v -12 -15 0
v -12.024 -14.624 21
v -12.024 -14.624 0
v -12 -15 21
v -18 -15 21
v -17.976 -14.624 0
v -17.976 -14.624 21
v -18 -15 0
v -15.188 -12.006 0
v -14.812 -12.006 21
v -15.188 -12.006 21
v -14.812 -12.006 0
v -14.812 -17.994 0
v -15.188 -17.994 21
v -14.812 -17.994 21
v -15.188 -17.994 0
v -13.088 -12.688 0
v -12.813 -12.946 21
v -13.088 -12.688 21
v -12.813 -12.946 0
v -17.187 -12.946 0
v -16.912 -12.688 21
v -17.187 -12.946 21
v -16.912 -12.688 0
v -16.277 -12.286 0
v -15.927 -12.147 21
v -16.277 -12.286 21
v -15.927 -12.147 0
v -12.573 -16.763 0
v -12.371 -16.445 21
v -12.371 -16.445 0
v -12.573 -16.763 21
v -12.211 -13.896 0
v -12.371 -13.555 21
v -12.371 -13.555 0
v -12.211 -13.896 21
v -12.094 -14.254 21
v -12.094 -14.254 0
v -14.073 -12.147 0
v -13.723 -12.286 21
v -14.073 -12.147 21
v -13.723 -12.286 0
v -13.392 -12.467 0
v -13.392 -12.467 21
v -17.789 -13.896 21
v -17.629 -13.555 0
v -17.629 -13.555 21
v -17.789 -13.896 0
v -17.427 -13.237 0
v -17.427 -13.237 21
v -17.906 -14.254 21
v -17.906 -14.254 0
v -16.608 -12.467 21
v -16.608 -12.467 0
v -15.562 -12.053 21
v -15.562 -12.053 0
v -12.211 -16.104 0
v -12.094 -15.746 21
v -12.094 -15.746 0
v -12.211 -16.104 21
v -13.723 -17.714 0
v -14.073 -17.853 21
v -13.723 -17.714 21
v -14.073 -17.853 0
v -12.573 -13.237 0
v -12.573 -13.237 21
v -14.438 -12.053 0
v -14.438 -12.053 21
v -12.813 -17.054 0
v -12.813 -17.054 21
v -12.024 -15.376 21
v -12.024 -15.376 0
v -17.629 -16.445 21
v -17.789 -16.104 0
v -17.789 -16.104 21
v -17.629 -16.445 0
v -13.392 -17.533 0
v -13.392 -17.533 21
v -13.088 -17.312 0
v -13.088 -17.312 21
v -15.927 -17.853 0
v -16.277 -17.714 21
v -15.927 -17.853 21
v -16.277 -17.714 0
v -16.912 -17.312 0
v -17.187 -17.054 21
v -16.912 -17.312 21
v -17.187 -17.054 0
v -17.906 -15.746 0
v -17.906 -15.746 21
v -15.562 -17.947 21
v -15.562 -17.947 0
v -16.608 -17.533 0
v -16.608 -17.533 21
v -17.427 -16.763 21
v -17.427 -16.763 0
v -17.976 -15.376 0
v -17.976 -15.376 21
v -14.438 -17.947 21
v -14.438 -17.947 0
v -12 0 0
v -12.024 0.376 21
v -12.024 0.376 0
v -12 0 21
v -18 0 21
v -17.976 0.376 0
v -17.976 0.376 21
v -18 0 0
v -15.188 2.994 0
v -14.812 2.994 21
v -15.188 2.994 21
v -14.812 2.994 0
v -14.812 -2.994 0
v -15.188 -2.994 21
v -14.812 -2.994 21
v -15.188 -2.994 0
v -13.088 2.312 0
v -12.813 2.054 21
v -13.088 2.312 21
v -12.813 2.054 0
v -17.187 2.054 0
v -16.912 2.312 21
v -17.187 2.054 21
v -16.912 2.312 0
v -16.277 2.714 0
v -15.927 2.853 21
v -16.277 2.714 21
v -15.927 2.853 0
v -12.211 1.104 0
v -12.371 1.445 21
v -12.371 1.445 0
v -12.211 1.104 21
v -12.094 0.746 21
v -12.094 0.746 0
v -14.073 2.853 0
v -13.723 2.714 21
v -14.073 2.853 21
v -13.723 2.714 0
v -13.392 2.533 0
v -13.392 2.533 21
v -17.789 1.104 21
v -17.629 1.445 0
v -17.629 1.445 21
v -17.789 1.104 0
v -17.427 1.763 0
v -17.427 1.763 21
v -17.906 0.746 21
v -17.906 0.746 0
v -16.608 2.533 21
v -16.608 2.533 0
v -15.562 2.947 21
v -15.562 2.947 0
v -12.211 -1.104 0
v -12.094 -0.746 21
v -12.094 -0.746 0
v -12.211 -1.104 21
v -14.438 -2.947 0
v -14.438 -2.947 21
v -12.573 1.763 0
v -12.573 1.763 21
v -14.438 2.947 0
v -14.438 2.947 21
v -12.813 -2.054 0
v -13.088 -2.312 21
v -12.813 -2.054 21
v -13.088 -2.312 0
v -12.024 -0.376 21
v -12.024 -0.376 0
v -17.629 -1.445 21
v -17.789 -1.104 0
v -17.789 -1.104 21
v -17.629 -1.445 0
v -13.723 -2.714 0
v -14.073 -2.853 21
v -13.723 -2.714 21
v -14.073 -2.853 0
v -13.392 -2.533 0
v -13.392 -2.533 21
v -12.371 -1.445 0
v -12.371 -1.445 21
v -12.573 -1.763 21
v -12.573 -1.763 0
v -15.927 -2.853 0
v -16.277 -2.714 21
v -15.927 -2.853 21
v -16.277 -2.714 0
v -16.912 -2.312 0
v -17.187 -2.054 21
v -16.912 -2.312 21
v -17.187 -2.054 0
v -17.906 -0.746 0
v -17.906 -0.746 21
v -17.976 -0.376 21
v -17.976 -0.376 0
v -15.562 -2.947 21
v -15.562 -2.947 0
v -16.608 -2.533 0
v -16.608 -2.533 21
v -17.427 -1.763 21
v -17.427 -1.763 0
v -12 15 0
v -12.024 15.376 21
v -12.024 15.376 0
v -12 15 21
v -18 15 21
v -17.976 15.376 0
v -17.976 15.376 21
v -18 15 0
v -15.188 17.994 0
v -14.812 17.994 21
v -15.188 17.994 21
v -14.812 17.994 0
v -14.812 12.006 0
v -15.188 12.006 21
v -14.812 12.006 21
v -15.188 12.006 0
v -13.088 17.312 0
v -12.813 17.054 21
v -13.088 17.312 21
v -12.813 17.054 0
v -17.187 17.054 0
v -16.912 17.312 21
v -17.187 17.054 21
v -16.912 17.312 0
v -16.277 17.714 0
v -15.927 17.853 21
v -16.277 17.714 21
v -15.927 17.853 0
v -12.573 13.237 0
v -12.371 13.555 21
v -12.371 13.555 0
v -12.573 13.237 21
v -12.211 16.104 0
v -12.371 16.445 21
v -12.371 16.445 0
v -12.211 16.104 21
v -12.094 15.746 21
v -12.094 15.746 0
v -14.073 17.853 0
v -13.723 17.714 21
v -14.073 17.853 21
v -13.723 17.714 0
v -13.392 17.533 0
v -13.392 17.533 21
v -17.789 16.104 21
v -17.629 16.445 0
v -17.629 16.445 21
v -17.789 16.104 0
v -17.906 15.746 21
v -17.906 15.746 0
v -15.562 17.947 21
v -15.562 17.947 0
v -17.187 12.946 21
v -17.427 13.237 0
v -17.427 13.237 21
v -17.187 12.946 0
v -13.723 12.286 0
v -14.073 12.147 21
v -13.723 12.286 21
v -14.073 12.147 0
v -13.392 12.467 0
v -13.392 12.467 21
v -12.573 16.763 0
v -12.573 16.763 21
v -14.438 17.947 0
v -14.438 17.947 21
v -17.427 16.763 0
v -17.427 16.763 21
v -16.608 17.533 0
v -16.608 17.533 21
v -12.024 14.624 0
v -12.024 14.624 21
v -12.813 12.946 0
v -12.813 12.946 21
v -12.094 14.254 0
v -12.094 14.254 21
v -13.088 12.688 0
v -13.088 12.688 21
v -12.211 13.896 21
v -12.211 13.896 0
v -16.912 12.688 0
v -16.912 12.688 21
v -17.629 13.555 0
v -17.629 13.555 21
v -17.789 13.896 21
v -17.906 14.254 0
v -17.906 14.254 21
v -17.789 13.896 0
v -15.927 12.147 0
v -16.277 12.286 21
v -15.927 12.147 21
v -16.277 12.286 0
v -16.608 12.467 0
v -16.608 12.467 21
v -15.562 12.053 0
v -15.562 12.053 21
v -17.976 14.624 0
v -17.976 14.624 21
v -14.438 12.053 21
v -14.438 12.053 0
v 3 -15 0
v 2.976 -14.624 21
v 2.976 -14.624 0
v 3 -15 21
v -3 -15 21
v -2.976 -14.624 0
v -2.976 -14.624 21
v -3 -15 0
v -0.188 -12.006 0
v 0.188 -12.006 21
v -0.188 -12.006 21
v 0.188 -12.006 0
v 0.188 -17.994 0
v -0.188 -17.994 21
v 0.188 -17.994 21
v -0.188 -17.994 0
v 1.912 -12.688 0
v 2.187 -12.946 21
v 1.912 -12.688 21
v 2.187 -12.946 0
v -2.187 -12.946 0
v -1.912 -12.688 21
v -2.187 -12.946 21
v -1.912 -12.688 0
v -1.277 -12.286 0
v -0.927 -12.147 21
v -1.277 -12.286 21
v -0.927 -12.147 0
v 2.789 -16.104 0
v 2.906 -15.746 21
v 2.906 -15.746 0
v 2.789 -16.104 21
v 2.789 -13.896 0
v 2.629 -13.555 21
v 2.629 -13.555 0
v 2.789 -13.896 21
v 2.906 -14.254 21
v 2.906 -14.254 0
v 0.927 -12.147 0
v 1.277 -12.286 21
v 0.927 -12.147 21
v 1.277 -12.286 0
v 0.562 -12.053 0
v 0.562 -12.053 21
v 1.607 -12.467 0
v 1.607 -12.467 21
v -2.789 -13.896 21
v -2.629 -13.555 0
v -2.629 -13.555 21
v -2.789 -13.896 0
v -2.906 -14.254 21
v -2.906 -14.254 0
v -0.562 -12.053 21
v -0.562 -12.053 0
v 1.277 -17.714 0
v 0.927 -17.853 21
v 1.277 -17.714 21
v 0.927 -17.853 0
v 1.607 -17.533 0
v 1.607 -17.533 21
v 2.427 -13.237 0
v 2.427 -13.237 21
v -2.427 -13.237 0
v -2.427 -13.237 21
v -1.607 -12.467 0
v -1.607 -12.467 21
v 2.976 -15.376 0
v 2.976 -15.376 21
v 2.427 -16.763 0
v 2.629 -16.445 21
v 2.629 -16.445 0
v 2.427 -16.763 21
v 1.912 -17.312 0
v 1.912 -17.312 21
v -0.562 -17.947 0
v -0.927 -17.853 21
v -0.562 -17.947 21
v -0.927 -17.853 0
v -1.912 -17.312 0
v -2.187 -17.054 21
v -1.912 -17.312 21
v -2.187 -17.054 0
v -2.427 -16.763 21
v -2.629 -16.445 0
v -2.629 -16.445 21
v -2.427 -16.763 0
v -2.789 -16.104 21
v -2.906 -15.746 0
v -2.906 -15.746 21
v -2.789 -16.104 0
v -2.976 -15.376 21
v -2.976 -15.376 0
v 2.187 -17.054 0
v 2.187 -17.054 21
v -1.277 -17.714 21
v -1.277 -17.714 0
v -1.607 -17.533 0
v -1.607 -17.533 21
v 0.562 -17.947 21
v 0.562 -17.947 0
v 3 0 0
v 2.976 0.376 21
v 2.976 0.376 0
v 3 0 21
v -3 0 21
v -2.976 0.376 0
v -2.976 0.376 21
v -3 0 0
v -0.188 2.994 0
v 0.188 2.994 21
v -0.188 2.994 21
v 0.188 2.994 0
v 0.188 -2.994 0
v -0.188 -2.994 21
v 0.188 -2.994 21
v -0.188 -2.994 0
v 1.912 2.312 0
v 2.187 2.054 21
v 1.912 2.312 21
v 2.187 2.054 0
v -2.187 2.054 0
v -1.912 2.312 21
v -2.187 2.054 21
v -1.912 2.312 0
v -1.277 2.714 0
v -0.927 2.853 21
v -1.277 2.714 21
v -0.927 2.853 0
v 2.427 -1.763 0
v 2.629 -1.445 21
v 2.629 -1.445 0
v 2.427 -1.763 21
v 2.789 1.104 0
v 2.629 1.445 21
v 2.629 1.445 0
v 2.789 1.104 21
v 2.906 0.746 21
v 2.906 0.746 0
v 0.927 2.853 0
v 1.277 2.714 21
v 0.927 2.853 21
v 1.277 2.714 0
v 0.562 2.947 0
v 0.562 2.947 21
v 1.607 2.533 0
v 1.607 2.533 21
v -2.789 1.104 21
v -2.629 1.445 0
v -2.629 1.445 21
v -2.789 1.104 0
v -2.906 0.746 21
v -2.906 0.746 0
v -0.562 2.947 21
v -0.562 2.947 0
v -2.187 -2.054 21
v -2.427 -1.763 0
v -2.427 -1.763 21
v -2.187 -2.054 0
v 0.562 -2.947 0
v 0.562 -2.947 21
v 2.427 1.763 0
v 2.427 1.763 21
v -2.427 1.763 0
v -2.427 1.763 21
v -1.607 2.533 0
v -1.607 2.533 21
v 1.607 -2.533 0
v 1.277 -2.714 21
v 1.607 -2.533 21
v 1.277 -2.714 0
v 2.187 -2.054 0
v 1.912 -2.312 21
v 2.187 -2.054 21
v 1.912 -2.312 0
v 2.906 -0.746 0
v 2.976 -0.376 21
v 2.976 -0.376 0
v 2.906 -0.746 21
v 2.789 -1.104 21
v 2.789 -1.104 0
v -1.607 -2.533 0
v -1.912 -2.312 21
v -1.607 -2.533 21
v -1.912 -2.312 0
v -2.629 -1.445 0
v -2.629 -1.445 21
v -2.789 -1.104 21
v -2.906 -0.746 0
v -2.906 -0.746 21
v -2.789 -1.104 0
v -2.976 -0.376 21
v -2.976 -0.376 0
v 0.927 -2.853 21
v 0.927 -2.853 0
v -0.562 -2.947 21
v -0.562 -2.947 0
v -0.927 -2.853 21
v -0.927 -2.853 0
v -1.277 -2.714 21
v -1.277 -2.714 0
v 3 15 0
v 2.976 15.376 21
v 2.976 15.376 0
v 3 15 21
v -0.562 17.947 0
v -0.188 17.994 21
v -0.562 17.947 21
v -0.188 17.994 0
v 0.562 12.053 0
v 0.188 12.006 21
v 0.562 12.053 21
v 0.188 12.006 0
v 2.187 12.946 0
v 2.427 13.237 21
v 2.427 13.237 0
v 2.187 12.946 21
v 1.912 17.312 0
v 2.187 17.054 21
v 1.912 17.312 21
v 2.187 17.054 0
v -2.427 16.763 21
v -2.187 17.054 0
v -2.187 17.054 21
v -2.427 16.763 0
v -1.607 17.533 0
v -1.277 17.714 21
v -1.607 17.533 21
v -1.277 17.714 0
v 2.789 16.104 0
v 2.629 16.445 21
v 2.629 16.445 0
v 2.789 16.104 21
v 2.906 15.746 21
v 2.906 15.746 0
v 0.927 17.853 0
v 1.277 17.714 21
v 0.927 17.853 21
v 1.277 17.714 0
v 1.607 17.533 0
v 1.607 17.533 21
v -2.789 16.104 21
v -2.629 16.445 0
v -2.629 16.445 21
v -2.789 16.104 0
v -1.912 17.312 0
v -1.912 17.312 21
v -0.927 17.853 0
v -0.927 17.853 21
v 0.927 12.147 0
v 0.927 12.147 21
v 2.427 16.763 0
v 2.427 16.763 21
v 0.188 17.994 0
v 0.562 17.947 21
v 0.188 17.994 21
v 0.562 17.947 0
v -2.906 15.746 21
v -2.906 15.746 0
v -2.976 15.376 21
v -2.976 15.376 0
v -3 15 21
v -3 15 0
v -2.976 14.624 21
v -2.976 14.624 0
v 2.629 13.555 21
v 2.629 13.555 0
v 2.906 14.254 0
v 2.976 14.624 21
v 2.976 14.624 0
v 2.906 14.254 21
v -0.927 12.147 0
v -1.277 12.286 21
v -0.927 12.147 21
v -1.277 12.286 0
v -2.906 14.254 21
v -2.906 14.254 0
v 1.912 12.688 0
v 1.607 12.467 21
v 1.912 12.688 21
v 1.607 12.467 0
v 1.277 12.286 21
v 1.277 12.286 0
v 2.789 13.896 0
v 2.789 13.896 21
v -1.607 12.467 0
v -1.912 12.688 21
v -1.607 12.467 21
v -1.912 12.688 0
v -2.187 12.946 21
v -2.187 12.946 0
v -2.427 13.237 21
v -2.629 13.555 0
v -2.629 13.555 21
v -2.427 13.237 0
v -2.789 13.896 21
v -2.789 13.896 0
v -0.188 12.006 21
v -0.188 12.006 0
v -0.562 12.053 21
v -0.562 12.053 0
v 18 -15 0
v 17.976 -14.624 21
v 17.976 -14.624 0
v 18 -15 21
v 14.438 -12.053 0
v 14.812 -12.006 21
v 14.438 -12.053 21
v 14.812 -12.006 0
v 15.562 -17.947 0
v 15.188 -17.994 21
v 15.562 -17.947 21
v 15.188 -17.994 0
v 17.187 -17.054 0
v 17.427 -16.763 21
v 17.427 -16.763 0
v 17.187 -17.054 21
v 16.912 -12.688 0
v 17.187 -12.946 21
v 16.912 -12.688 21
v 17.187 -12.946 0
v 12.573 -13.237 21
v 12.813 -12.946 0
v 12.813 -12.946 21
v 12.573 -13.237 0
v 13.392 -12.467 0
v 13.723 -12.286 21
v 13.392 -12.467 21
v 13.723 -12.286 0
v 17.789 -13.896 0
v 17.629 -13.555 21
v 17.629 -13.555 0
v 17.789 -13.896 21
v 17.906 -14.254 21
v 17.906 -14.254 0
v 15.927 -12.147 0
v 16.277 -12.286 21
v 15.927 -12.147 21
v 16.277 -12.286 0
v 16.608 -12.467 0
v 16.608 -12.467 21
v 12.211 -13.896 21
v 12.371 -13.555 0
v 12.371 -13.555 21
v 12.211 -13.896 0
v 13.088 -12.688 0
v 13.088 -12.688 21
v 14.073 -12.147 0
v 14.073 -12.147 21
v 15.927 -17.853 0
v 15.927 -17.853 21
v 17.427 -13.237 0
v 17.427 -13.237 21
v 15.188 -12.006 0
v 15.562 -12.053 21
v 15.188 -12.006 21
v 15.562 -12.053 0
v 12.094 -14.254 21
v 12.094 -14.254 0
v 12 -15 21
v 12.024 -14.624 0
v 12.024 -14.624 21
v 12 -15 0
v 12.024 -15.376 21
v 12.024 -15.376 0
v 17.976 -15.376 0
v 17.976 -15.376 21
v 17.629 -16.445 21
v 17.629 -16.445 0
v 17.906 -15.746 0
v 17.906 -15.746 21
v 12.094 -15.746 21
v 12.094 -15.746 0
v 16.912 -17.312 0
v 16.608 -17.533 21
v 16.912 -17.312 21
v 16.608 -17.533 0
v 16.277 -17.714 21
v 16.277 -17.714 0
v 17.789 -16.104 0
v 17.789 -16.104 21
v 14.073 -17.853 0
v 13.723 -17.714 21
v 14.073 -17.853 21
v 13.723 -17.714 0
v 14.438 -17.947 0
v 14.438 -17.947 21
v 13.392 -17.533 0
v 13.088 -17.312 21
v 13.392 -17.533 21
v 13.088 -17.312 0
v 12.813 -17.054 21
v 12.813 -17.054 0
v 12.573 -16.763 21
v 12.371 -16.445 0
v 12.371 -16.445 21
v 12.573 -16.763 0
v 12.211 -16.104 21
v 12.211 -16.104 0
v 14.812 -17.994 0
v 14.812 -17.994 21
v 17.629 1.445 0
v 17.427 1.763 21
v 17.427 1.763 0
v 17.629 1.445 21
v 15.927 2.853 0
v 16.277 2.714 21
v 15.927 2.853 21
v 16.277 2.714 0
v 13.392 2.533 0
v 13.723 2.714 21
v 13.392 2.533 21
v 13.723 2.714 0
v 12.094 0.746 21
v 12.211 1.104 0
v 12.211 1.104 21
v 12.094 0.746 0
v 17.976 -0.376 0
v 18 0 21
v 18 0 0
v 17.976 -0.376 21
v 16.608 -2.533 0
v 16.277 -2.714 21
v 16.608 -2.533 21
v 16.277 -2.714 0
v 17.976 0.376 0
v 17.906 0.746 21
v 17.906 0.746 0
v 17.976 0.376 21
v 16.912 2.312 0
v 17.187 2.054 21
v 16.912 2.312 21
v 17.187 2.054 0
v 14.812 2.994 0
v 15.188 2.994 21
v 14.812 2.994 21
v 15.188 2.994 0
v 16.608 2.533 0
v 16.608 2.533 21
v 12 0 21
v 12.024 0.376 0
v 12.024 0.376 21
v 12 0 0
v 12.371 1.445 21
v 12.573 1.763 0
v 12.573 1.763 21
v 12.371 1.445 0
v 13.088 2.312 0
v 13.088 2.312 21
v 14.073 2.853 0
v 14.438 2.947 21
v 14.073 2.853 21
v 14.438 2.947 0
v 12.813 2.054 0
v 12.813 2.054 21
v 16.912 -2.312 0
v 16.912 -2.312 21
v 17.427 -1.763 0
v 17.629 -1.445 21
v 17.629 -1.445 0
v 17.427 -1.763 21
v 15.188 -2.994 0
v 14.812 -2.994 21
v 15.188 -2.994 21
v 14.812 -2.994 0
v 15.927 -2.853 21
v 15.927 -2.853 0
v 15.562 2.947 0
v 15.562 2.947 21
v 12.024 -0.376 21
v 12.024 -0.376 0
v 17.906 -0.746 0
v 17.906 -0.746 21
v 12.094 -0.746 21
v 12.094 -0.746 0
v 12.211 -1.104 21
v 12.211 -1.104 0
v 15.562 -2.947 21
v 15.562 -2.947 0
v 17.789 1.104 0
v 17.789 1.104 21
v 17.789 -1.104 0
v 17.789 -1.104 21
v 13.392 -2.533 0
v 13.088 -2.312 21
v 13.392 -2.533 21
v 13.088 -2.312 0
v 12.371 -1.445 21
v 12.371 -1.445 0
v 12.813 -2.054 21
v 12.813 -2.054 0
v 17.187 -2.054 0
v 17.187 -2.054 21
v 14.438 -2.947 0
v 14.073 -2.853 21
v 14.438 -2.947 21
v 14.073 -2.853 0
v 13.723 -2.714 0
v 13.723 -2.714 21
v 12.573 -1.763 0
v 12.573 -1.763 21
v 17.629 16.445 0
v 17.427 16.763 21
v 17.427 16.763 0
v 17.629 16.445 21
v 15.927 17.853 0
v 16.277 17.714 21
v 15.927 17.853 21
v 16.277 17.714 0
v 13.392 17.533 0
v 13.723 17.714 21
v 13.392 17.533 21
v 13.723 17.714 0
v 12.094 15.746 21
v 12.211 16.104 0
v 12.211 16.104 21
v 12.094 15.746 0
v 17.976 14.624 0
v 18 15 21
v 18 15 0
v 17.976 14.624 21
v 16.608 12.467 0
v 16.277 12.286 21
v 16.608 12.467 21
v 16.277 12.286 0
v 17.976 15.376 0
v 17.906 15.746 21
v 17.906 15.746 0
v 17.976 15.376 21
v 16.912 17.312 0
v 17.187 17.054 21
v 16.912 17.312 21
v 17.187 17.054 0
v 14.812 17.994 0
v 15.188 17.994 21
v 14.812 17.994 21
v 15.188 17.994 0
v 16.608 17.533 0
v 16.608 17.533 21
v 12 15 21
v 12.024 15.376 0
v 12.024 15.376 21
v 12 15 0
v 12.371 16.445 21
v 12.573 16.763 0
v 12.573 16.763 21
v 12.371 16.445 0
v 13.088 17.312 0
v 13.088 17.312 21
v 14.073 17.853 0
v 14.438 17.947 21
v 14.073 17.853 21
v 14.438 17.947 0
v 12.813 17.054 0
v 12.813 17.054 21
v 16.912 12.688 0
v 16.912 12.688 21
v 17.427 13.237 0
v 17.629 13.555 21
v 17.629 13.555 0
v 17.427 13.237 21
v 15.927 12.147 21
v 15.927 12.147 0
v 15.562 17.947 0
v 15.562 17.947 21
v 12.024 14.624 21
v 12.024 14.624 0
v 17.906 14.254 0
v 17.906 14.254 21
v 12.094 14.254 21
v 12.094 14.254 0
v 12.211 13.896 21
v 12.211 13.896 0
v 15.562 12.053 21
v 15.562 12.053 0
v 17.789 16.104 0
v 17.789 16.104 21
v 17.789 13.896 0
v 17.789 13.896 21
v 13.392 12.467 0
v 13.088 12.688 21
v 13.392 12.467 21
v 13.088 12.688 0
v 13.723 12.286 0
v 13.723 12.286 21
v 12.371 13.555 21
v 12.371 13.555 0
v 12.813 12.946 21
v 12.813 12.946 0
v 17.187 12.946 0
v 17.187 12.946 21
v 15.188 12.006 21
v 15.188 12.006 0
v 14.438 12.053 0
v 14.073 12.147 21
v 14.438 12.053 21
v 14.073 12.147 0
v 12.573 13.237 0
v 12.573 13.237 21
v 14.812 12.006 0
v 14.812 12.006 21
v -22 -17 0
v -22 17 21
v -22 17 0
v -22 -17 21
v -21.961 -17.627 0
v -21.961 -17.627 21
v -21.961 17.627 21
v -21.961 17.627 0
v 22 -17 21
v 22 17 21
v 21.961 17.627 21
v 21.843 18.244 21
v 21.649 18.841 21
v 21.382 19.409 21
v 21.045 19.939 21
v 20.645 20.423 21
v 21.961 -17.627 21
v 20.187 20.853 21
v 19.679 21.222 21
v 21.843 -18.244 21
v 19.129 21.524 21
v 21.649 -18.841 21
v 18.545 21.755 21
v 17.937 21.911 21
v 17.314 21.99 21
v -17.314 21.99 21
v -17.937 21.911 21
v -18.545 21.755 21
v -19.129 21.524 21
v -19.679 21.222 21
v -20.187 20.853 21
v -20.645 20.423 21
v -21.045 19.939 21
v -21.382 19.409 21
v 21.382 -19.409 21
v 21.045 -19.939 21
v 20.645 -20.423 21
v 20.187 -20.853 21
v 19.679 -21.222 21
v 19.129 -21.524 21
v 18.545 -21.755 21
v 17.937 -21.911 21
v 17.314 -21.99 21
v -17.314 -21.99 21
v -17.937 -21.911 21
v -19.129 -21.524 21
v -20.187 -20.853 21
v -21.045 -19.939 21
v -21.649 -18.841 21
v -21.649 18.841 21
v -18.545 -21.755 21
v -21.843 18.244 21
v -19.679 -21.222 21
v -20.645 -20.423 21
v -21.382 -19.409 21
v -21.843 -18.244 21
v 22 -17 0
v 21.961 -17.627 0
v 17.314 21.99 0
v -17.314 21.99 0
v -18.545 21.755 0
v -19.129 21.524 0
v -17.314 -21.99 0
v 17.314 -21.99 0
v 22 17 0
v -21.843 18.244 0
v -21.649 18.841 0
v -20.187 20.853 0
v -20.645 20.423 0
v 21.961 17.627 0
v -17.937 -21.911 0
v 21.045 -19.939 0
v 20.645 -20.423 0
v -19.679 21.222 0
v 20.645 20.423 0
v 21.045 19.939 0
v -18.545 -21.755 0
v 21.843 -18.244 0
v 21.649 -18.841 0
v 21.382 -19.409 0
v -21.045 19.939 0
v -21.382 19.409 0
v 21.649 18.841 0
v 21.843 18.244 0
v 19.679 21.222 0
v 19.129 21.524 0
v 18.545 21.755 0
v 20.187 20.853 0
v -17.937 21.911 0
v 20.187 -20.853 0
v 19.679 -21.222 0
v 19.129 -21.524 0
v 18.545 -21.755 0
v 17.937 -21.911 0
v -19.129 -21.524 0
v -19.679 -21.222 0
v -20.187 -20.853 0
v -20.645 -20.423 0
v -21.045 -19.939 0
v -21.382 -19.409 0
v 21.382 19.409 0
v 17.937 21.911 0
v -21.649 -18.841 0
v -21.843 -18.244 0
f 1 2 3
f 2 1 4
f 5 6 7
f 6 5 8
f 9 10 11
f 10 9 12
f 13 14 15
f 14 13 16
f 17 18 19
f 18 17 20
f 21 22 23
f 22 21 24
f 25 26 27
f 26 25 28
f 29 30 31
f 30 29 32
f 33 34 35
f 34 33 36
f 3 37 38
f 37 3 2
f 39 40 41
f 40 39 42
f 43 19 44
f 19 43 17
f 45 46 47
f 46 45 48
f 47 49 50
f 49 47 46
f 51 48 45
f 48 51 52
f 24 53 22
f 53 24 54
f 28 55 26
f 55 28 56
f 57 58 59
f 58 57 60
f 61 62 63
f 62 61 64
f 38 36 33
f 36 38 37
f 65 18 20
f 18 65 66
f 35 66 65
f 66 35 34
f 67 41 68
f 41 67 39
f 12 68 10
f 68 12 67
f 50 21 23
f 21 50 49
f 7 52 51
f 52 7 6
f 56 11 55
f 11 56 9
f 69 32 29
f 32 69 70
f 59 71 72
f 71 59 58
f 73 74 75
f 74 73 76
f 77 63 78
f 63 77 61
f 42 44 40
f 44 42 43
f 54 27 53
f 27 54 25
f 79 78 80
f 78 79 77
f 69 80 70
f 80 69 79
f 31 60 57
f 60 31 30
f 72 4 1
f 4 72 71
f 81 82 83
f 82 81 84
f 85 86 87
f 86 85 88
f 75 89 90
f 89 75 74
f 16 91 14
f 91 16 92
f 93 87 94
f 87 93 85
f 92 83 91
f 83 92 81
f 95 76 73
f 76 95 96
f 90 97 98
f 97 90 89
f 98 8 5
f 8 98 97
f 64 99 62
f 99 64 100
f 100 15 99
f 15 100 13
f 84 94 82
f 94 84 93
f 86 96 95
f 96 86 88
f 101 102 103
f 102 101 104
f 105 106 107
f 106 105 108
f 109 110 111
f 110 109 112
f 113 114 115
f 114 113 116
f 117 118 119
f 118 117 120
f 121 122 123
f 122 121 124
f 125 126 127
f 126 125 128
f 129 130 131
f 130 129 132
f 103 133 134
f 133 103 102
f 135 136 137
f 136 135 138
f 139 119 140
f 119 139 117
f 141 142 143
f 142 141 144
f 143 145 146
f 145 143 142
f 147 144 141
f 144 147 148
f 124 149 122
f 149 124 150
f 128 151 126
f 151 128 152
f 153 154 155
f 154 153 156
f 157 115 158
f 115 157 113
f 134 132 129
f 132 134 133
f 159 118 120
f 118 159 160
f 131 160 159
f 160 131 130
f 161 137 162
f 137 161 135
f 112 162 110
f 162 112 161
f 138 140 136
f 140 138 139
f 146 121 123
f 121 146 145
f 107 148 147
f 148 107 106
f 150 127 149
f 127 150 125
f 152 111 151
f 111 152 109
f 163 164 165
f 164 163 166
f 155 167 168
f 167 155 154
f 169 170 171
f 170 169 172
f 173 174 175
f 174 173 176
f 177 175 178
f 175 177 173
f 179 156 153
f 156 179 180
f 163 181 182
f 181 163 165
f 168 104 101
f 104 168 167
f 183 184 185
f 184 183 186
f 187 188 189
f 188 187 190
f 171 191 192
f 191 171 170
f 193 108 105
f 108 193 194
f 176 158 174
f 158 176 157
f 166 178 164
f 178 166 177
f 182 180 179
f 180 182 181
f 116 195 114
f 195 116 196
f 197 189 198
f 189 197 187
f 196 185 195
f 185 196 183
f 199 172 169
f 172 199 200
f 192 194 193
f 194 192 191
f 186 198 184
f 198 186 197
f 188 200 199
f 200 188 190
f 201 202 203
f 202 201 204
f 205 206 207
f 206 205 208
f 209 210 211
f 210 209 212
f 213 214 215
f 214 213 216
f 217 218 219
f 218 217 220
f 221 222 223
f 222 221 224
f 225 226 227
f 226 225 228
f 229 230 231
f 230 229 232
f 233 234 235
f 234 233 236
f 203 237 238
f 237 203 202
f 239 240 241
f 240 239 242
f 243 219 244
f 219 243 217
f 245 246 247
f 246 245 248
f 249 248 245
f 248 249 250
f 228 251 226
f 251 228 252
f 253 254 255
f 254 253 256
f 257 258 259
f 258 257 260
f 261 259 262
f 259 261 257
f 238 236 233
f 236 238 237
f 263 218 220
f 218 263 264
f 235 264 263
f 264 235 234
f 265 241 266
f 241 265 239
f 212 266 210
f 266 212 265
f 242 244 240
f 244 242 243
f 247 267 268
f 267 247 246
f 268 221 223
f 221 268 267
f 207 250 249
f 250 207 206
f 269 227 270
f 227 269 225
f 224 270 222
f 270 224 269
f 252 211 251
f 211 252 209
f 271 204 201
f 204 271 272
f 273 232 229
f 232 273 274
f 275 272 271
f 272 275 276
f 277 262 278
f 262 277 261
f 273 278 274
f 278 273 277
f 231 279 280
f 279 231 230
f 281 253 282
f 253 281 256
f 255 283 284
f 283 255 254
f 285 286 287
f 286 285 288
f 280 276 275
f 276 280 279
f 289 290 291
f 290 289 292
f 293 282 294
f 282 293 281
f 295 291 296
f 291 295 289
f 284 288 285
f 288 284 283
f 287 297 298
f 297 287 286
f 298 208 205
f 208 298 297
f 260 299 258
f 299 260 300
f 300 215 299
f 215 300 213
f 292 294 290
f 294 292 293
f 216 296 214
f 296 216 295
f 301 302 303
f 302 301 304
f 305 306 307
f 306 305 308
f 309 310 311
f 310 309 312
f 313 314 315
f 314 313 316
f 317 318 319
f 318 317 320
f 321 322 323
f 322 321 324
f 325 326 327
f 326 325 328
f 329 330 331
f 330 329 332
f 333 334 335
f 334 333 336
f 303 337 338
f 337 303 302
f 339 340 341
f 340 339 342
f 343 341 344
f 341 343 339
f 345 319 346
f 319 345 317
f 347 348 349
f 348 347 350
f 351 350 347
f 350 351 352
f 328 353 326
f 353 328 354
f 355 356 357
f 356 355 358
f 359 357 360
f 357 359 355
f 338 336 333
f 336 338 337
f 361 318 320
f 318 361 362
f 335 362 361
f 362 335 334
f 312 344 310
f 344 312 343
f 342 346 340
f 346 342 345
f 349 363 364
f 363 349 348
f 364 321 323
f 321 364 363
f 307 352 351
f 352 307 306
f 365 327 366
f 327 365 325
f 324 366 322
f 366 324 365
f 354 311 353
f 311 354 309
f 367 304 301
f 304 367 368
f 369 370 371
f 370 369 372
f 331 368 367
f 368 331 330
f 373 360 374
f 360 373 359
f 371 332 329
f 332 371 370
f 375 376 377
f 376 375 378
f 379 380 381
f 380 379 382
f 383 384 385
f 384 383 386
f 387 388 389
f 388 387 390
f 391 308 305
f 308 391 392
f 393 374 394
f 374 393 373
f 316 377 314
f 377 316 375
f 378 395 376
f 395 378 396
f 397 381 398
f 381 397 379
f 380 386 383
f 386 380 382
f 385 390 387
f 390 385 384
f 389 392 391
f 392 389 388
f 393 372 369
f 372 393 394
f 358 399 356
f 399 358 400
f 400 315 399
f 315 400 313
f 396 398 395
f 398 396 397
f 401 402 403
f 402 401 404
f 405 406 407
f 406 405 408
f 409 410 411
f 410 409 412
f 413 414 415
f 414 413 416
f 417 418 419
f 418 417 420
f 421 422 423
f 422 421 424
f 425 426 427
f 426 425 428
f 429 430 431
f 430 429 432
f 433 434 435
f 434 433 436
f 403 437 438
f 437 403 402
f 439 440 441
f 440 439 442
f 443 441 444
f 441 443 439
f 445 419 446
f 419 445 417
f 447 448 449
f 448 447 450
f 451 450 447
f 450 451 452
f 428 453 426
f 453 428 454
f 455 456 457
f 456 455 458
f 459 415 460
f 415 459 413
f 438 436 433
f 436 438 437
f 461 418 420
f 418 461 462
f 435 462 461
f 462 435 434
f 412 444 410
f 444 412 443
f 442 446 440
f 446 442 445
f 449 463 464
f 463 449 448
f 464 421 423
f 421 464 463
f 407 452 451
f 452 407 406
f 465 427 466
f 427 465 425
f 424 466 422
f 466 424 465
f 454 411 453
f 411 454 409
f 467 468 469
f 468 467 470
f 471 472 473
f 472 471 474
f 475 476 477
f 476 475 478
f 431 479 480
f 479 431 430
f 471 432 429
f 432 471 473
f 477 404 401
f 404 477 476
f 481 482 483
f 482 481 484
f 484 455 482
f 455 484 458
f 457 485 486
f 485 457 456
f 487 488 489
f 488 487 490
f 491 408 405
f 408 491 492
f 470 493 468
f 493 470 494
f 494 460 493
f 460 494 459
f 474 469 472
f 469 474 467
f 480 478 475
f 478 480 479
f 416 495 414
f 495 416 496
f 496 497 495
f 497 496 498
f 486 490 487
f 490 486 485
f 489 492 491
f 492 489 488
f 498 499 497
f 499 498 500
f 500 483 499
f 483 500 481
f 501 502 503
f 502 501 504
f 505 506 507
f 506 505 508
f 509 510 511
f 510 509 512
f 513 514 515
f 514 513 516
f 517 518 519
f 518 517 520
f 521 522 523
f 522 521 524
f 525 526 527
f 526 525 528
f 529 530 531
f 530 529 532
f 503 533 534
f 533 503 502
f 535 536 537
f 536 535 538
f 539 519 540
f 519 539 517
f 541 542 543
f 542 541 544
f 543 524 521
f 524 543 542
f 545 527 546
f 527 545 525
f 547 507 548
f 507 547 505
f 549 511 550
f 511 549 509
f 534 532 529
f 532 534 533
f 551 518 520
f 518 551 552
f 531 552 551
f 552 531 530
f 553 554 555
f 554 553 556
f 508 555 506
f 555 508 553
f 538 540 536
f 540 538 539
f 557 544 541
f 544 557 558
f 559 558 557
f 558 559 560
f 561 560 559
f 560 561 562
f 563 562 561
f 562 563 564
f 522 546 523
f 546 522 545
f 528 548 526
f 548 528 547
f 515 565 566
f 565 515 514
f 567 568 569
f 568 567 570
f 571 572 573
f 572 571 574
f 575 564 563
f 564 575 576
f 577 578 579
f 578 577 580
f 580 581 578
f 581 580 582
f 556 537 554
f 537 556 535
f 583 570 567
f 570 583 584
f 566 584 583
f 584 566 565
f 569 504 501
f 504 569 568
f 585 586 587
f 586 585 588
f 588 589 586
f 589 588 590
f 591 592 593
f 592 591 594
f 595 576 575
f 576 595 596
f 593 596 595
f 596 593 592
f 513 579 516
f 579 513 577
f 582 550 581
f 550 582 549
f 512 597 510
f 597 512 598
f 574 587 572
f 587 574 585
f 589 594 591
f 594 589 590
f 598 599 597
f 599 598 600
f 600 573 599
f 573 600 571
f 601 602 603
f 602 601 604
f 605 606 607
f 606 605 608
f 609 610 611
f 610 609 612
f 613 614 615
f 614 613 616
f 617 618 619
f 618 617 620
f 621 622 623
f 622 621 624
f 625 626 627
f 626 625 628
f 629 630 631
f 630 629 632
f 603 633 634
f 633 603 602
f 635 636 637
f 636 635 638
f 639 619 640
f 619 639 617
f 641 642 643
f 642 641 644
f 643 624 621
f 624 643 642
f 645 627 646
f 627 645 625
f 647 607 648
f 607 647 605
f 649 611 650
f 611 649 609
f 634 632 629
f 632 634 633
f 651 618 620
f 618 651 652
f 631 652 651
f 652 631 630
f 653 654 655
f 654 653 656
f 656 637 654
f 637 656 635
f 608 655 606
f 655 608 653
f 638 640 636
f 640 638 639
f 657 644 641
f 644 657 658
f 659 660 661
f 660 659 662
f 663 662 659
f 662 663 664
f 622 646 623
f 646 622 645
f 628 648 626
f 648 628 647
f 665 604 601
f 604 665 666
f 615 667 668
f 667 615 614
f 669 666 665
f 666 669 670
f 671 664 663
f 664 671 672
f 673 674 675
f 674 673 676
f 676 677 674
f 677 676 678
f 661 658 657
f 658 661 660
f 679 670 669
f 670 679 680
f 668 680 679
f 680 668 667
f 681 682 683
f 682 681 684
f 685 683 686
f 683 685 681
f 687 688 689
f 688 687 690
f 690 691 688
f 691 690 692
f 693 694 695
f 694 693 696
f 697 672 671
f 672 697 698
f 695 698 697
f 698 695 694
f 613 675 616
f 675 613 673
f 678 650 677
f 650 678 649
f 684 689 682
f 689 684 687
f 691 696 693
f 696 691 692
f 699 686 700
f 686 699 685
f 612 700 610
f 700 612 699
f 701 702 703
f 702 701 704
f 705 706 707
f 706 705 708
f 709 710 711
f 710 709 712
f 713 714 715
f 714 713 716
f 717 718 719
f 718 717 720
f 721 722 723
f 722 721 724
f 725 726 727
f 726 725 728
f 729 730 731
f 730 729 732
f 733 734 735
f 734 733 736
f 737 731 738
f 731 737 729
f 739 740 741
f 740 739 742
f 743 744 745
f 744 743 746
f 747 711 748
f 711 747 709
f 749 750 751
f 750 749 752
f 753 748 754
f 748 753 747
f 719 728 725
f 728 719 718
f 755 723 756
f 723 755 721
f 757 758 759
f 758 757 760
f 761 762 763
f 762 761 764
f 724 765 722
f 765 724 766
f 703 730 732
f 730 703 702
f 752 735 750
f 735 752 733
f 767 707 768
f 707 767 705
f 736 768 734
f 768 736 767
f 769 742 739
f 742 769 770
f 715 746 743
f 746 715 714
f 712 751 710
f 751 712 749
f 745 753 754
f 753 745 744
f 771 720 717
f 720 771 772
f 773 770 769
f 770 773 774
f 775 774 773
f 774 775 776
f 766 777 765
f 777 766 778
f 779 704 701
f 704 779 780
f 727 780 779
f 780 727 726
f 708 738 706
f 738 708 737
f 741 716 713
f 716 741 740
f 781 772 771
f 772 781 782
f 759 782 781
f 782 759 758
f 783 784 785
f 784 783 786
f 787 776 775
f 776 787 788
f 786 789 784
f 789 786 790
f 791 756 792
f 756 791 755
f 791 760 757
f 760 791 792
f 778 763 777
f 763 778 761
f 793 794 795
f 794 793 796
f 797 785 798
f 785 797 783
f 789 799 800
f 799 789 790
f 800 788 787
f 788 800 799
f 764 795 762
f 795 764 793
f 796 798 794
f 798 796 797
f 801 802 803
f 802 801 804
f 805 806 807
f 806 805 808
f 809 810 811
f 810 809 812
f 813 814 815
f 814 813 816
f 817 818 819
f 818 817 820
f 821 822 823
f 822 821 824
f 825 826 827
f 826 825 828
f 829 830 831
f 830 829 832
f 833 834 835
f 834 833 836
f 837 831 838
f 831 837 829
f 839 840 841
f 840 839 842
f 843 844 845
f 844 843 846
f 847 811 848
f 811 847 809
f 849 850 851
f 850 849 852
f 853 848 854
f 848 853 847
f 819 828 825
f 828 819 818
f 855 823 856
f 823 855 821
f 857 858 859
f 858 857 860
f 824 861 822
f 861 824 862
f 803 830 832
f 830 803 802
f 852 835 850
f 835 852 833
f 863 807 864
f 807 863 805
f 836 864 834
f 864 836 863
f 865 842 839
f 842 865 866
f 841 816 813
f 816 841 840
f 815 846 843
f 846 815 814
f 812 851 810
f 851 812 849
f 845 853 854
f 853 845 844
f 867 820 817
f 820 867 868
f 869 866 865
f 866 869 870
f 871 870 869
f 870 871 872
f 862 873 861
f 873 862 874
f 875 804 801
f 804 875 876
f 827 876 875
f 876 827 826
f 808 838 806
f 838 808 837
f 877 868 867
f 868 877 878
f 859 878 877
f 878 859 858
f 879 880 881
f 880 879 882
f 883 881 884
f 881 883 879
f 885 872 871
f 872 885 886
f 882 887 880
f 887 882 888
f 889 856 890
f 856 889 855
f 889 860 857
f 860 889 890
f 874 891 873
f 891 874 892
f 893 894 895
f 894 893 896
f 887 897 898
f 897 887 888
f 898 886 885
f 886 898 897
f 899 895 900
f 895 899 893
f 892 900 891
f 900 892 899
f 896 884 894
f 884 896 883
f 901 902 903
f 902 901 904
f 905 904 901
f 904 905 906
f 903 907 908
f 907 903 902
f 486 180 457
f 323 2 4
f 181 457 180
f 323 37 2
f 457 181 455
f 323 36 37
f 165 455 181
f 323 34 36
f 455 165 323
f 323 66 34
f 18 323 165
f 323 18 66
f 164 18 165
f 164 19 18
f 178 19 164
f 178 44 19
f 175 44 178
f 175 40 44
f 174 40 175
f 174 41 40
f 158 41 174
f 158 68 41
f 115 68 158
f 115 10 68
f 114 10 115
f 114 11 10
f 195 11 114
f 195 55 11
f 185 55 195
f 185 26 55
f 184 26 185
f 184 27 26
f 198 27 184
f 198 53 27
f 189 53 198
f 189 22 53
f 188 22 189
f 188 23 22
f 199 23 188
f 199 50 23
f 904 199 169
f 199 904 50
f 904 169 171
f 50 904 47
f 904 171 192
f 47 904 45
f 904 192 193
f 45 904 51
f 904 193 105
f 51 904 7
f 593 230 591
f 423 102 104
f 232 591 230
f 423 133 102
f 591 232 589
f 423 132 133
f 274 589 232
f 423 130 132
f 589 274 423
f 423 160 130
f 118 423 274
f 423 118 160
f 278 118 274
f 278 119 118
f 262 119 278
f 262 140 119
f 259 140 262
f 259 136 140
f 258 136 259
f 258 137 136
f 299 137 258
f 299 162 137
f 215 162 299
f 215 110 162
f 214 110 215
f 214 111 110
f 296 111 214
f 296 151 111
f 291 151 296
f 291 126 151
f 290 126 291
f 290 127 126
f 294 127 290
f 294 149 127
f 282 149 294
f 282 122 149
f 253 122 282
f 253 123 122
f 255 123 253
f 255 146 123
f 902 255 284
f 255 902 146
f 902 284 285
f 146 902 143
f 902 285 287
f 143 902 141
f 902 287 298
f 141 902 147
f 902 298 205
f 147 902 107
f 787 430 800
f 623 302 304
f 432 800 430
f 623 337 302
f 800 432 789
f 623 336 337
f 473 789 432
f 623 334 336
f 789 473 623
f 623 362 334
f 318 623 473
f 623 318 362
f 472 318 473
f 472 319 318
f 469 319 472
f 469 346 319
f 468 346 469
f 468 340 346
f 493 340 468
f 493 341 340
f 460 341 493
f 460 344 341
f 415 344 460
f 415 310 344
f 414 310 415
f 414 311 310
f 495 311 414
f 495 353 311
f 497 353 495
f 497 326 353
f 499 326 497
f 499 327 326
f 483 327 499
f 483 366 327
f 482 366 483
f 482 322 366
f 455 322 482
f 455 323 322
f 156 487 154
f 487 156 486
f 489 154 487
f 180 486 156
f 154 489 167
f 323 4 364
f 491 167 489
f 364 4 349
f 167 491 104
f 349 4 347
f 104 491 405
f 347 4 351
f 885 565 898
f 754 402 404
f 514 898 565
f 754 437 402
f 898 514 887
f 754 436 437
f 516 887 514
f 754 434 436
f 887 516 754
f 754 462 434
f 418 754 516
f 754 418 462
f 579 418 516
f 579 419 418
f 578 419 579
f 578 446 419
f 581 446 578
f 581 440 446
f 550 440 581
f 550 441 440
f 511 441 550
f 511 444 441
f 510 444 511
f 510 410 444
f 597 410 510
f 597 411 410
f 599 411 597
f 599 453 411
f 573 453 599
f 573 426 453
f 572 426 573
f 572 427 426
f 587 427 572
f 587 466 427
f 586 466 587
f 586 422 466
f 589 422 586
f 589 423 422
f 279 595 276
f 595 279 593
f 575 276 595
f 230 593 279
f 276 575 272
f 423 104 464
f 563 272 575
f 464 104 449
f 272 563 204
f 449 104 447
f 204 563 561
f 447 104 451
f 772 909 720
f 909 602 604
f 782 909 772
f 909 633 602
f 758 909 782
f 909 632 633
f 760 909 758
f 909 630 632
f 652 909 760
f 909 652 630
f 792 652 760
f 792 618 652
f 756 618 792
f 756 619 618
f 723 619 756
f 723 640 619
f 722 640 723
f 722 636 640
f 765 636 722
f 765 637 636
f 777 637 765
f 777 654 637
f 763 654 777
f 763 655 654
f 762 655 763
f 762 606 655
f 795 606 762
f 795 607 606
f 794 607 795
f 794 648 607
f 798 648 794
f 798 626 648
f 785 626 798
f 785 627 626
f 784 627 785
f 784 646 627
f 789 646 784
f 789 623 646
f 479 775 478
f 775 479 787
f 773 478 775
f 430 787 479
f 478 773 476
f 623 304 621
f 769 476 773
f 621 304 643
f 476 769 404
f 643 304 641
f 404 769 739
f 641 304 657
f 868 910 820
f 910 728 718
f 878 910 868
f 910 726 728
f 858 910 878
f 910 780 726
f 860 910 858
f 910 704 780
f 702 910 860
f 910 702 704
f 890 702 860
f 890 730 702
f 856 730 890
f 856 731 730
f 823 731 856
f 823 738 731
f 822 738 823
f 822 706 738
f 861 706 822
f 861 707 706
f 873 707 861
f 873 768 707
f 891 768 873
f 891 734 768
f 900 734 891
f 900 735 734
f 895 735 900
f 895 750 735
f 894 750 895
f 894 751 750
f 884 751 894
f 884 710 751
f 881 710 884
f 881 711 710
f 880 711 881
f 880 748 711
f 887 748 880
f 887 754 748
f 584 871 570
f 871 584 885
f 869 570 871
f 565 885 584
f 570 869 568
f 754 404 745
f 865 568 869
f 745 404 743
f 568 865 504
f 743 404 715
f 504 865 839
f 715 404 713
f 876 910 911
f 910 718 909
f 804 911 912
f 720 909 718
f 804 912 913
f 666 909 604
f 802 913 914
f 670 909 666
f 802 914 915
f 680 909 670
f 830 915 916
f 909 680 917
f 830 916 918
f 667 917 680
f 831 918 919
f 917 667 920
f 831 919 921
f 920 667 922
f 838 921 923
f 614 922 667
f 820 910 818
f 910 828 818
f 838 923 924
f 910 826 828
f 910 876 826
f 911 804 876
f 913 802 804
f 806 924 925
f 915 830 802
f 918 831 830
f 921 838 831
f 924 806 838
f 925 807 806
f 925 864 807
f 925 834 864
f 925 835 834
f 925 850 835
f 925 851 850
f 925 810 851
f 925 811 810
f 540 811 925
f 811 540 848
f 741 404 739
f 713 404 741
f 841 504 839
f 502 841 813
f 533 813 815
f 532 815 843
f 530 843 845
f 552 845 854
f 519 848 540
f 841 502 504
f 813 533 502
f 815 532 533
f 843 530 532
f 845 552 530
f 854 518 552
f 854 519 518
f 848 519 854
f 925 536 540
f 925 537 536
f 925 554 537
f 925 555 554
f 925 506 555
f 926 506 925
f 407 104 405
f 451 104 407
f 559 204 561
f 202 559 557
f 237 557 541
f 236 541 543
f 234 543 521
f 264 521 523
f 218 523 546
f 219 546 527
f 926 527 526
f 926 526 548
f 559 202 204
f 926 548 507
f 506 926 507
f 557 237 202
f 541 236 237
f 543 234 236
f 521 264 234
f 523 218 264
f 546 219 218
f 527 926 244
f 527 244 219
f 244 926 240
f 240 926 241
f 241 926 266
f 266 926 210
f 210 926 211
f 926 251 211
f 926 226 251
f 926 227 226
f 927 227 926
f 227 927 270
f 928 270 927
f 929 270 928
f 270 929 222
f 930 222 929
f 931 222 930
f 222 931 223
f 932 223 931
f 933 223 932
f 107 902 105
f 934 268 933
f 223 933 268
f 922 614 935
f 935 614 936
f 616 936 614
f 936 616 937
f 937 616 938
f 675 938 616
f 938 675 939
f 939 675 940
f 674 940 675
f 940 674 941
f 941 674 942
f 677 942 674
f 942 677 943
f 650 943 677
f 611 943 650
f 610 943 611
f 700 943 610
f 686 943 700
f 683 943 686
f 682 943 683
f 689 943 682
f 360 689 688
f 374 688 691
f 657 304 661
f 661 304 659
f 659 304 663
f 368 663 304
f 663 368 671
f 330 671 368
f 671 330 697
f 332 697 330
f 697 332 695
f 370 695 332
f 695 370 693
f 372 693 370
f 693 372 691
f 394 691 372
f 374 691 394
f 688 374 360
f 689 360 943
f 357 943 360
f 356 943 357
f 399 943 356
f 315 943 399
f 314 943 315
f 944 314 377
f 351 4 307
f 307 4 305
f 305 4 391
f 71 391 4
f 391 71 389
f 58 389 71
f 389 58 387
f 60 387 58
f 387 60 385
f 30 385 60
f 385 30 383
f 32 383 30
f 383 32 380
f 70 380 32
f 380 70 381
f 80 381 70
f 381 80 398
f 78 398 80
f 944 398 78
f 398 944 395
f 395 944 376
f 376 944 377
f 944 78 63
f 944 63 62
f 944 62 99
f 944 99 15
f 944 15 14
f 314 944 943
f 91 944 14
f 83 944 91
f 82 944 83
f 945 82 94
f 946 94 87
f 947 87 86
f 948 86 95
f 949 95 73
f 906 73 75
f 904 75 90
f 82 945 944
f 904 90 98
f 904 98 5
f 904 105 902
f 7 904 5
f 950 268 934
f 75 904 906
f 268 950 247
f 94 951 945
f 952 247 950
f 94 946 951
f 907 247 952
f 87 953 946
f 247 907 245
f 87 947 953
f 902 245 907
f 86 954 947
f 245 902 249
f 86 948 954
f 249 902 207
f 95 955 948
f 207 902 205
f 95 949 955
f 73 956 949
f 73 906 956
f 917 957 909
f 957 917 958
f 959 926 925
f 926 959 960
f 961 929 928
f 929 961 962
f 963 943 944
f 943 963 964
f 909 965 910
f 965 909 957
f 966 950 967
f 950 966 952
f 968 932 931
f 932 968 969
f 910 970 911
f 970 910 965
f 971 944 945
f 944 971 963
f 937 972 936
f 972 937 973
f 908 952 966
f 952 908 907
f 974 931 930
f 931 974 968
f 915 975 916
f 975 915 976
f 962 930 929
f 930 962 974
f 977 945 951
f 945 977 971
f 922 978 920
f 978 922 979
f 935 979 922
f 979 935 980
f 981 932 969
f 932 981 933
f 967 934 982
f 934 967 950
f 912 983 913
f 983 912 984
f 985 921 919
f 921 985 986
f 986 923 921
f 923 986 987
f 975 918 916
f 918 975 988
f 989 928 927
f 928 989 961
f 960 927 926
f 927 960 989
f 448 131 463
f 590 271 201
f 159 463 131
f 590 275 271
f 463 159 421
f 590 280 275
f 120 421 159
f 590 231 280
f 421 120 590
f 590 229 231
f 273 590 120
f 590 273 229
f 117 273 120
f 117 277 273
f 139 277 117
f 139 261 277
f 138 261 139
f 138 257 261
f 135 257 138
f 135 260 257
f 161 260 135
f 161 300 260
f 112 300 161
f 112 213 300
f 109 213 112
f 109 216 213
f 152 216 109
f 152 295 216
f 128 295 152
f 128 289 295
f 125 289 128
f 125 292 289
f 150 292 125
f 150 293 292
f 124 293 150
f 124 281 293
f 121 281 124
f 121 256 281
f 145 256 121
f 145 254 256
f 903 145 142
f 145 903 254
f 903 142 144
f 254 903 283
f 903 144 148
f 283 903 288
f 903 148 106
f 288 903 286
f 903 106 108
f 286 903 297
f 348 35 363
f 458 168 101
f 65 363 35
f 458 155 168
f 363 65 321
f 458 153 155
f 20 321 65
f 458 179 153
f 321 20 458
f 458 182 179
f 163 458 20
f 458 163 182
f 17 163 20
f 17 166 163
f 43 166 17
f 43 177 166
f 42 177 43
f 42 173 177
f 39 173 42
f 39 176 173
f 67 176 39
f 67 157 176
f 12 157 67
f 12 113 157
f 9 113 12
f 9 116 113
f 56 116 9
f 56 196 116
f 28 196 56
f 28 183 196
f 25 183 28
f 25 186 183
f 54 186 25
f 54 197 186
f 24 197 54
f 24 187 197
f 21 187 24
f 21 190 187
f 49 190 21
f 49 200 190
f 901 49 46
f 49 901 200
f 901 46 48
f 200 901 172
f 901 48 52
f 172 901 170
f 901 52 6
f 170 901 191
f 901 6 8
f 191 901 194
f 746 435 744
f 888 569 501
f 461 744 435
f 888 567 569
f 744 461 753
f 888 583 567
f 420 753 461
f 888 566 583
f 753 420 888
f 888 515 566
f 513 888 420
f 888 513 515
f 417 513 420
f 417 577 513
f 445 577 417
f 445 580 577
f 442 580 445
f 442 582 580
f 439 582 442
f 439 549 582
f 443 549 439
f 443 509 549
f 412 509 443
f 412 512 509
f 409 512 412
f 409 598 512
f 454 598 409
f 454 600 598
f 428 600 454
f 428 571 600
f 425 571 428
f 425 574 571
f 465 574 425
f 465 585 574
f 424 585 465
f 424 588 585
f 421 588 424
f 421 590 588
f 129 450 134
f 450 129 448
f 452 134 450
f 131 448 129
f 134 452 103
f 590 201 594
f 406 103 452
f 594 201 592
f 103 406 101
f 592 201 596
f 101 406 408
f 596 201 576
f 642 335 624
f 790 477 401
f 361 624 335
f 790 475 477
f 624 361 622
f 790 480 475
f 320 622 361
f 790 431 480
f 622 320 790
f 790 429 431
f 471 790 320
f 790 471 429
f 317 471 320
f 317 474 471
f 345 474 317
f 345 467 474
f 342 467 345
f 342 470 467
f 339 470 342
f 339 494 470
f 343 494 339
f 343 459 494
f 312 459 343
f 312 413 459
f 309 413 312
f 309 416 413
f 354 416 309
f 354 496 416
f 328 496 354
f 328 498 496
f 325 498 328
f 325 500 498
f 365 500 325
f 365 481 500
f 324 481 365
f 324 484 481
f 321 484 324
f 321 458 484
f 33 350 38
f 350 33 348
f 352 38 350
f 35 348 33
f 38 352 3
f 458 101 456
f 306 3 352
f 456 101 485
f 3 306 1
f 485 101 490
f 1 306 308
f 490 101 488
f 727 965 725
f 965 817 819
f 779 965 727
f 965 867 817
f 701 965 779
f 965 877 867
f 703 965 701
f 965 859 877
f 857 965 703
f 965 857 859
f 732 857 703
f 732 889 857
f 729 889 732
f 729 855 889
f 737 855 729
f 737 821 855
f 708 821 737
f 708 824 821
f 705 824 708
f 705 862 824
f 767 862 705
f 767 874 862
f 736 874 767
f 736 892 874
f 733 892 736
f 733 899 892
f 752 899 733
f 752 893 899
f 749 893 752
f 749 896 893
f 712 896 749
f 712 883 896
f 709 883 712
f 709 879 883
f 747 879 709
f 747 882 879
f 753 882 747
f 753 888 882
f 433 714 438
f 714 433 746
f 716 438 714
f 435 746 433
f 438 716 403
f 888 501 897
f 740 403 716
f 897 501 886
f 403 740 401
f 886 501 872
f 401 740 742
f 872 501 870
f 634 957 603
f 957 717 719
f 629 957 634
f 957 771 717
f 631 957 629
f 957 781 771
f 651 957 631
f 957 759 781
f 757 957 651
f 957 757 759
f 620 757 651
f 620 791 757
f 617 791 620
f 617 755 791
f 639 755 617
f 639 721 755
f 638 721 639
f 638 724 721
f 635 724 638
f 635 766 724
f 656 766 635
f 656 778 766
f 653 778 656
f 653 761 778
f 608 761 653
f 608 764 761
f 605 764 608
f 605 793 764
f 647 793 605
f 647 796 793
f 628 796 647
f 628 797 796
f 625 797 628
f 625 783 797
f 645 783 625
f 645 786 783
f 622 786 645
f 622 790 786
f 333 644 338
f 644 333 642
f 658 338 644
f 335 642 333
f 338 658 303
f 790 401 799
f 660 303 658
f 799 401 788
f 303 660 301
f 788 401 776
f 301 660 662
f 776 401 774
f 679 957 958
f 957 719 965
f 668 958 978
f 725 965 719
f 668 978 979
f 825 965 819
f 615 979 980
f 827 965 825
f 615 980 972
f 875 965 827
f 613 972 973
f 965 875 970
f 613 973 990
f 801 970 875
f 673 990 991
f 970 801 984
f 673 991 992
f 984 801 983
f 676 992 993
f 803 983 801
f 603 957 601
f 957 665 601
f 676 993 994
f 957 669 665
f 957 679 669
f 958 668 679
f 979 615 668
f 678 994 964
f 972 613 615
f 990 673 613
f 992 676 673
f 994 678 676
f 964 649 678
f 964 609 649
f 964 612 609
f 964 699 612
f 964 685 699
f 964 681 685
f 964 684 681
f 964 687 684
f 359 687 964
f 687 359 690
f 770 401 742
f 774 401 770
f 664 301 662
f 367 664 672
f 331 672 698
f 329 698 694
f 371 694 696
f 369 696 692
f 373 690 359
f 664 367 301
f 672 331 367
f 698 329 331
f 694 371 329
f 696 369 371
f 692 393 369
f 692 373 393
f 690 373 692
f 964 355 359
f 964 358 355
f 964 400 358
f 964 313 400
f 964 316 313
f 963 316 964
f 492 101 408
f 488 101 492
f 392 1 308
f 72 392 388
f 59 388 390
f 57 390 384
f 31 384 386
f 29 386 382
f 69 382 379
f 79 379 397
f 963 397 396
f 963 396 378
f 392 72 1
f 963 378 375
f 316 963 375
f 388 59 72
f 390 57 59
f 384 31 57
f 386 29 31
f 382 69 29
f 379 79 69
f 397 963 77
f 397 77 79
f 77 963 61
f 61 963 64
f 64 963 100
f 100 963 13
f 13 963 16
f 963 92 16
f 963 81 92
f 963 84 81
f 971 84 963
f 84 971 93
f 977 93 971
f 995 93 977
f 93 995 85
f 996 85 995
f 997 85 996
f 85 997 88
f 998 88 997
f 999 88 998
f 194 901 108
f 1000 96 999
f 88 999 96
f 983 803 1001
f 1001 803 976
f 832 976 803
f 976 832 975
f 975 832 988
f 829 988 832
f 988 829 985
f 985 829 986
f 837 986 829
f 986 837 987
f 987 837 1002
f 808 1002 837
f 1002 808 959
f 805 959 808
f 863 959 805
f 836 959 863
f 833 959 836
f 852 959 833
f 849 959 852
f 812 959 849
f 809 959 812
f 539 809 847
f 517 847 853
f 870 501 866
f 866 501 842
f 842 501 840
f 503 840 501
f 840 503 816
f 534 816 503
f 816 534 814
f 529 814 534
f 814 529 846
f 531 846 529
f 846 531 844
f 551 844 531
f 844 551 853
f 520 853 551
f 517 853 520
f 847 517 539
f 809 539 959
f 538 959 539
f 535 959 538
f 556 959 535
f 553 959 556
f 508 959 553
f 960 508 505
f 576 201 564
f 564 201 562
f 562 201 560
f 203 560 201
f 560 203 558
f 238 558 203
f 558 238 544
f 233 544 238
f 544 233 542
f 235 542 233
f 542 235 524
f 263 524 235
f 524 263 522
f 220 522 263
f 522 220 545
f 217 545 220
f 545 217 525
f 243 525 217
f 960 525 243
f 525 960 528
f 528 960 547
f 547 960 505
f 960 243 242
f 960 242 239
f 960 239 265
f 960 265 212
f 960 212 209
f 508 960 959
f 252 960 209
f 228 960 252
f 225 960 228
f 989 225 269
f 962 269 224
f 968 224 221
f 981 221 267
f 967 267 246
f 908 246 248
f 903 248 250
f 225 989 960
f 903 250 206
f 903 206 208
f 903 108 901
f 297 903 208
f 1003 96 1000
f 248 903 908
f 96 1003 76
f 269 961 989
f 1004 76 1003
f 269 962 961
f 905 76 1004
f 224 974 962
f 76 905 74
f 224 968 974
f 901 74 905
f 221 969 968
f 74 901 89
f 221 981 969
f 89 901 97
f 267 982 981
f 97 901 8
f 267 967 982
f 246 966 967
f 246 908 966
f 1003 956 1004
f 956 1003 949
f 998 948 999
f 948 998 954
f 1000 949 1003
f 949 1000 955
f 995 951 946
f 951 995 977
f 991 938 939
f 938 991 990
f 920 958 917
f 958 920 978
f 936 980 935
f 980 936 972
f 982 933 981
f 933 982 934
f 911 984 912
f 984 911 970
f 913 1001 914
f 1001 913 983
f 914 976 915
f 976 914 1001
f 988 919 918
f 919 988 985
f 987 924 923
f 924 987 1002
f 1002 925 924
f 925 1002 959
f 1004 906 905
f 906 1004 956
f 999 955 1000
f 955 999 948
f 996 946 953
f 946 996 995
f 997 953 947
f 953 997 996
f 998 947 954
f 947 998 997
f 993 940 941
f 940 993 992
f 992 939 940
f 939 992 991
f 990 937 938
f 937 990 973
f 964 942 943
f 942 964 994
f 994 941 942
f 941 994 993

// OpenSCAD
$fn = 50;


difference() {
	union() {
		hull() {
			translate(v = [-17.0000000000, 17.0000000000, 0]) {
				cylinder(h = 21, r = 5);
			}
			translate(v = [17.0000000000, 17.0000000000, 0]) {
				cylinder(h = 21, r = 5);
			}
			translate(v = [-17.0000000000, -17.0000000000, 0]) {
				cylinder(h = 21, r = 5);
			}
			translate(v = [17.0000000000, -17.0000000000, 0]) {
				cylinder(h = 21, r = 5);
			}
		}
	}
	union() {
		translate(v = [-15.0000000000, -15.0000000000, 0]) {
			translate(v = [0, 0, -100]) {
				cylinder(h = 200, r = 3.0000000000);
			}
		}
		translate(v = [-15.0000000000, 0.0000000000, 0]) {
			translate(v = [0, 0, -100]) {
				cylinder(h = 200, r = 3.0000000000);
			}
		}
		translate(v = [-15.0000000000, 15.0000000000, 0]) {
			translate(v = [0, 0, -100]) {
				cylinder(h = 200, r = 3.0000000000);
			}
		}
		translate(v = [0.0000000000, -15.0000000000, 0]) {
			translate(v = [0, 0, -100]) {
				cylinder(h = 200, r = 3.0000000000);
			}
		}
		translate(v = [0, 0, -100]) {
			cylinder(h = 200, r = 3.0000000000);
		}
		translate(v = [0.0000000000, 15.0000000000, 0]) {
			translate(v = [0, 0, -100]) {
				cylinder(h = 200, r = 3.0000000000);
			}
		}
		translate(v = [15.0000000000, -15.0000000000, 0]) {
			translate(v = [0, 0, -100]) {
				cylinder(h = 200, r = 3.0000000000);
			}
		}
		translate(v = [15.0000000000, 0.0000000000, 0]) {
			translate(v = [0, 0, -100]) {
				cylinder(h = 200, r = 3.0000000000);
			}
		}
		translate(v = [15.0000000000, 15.0000000000, 0]) {
			translate(v = [0, 0, -100]) {
				cylinder(h = 200, r = 3.0000000000);
			}
		}
	}
}
